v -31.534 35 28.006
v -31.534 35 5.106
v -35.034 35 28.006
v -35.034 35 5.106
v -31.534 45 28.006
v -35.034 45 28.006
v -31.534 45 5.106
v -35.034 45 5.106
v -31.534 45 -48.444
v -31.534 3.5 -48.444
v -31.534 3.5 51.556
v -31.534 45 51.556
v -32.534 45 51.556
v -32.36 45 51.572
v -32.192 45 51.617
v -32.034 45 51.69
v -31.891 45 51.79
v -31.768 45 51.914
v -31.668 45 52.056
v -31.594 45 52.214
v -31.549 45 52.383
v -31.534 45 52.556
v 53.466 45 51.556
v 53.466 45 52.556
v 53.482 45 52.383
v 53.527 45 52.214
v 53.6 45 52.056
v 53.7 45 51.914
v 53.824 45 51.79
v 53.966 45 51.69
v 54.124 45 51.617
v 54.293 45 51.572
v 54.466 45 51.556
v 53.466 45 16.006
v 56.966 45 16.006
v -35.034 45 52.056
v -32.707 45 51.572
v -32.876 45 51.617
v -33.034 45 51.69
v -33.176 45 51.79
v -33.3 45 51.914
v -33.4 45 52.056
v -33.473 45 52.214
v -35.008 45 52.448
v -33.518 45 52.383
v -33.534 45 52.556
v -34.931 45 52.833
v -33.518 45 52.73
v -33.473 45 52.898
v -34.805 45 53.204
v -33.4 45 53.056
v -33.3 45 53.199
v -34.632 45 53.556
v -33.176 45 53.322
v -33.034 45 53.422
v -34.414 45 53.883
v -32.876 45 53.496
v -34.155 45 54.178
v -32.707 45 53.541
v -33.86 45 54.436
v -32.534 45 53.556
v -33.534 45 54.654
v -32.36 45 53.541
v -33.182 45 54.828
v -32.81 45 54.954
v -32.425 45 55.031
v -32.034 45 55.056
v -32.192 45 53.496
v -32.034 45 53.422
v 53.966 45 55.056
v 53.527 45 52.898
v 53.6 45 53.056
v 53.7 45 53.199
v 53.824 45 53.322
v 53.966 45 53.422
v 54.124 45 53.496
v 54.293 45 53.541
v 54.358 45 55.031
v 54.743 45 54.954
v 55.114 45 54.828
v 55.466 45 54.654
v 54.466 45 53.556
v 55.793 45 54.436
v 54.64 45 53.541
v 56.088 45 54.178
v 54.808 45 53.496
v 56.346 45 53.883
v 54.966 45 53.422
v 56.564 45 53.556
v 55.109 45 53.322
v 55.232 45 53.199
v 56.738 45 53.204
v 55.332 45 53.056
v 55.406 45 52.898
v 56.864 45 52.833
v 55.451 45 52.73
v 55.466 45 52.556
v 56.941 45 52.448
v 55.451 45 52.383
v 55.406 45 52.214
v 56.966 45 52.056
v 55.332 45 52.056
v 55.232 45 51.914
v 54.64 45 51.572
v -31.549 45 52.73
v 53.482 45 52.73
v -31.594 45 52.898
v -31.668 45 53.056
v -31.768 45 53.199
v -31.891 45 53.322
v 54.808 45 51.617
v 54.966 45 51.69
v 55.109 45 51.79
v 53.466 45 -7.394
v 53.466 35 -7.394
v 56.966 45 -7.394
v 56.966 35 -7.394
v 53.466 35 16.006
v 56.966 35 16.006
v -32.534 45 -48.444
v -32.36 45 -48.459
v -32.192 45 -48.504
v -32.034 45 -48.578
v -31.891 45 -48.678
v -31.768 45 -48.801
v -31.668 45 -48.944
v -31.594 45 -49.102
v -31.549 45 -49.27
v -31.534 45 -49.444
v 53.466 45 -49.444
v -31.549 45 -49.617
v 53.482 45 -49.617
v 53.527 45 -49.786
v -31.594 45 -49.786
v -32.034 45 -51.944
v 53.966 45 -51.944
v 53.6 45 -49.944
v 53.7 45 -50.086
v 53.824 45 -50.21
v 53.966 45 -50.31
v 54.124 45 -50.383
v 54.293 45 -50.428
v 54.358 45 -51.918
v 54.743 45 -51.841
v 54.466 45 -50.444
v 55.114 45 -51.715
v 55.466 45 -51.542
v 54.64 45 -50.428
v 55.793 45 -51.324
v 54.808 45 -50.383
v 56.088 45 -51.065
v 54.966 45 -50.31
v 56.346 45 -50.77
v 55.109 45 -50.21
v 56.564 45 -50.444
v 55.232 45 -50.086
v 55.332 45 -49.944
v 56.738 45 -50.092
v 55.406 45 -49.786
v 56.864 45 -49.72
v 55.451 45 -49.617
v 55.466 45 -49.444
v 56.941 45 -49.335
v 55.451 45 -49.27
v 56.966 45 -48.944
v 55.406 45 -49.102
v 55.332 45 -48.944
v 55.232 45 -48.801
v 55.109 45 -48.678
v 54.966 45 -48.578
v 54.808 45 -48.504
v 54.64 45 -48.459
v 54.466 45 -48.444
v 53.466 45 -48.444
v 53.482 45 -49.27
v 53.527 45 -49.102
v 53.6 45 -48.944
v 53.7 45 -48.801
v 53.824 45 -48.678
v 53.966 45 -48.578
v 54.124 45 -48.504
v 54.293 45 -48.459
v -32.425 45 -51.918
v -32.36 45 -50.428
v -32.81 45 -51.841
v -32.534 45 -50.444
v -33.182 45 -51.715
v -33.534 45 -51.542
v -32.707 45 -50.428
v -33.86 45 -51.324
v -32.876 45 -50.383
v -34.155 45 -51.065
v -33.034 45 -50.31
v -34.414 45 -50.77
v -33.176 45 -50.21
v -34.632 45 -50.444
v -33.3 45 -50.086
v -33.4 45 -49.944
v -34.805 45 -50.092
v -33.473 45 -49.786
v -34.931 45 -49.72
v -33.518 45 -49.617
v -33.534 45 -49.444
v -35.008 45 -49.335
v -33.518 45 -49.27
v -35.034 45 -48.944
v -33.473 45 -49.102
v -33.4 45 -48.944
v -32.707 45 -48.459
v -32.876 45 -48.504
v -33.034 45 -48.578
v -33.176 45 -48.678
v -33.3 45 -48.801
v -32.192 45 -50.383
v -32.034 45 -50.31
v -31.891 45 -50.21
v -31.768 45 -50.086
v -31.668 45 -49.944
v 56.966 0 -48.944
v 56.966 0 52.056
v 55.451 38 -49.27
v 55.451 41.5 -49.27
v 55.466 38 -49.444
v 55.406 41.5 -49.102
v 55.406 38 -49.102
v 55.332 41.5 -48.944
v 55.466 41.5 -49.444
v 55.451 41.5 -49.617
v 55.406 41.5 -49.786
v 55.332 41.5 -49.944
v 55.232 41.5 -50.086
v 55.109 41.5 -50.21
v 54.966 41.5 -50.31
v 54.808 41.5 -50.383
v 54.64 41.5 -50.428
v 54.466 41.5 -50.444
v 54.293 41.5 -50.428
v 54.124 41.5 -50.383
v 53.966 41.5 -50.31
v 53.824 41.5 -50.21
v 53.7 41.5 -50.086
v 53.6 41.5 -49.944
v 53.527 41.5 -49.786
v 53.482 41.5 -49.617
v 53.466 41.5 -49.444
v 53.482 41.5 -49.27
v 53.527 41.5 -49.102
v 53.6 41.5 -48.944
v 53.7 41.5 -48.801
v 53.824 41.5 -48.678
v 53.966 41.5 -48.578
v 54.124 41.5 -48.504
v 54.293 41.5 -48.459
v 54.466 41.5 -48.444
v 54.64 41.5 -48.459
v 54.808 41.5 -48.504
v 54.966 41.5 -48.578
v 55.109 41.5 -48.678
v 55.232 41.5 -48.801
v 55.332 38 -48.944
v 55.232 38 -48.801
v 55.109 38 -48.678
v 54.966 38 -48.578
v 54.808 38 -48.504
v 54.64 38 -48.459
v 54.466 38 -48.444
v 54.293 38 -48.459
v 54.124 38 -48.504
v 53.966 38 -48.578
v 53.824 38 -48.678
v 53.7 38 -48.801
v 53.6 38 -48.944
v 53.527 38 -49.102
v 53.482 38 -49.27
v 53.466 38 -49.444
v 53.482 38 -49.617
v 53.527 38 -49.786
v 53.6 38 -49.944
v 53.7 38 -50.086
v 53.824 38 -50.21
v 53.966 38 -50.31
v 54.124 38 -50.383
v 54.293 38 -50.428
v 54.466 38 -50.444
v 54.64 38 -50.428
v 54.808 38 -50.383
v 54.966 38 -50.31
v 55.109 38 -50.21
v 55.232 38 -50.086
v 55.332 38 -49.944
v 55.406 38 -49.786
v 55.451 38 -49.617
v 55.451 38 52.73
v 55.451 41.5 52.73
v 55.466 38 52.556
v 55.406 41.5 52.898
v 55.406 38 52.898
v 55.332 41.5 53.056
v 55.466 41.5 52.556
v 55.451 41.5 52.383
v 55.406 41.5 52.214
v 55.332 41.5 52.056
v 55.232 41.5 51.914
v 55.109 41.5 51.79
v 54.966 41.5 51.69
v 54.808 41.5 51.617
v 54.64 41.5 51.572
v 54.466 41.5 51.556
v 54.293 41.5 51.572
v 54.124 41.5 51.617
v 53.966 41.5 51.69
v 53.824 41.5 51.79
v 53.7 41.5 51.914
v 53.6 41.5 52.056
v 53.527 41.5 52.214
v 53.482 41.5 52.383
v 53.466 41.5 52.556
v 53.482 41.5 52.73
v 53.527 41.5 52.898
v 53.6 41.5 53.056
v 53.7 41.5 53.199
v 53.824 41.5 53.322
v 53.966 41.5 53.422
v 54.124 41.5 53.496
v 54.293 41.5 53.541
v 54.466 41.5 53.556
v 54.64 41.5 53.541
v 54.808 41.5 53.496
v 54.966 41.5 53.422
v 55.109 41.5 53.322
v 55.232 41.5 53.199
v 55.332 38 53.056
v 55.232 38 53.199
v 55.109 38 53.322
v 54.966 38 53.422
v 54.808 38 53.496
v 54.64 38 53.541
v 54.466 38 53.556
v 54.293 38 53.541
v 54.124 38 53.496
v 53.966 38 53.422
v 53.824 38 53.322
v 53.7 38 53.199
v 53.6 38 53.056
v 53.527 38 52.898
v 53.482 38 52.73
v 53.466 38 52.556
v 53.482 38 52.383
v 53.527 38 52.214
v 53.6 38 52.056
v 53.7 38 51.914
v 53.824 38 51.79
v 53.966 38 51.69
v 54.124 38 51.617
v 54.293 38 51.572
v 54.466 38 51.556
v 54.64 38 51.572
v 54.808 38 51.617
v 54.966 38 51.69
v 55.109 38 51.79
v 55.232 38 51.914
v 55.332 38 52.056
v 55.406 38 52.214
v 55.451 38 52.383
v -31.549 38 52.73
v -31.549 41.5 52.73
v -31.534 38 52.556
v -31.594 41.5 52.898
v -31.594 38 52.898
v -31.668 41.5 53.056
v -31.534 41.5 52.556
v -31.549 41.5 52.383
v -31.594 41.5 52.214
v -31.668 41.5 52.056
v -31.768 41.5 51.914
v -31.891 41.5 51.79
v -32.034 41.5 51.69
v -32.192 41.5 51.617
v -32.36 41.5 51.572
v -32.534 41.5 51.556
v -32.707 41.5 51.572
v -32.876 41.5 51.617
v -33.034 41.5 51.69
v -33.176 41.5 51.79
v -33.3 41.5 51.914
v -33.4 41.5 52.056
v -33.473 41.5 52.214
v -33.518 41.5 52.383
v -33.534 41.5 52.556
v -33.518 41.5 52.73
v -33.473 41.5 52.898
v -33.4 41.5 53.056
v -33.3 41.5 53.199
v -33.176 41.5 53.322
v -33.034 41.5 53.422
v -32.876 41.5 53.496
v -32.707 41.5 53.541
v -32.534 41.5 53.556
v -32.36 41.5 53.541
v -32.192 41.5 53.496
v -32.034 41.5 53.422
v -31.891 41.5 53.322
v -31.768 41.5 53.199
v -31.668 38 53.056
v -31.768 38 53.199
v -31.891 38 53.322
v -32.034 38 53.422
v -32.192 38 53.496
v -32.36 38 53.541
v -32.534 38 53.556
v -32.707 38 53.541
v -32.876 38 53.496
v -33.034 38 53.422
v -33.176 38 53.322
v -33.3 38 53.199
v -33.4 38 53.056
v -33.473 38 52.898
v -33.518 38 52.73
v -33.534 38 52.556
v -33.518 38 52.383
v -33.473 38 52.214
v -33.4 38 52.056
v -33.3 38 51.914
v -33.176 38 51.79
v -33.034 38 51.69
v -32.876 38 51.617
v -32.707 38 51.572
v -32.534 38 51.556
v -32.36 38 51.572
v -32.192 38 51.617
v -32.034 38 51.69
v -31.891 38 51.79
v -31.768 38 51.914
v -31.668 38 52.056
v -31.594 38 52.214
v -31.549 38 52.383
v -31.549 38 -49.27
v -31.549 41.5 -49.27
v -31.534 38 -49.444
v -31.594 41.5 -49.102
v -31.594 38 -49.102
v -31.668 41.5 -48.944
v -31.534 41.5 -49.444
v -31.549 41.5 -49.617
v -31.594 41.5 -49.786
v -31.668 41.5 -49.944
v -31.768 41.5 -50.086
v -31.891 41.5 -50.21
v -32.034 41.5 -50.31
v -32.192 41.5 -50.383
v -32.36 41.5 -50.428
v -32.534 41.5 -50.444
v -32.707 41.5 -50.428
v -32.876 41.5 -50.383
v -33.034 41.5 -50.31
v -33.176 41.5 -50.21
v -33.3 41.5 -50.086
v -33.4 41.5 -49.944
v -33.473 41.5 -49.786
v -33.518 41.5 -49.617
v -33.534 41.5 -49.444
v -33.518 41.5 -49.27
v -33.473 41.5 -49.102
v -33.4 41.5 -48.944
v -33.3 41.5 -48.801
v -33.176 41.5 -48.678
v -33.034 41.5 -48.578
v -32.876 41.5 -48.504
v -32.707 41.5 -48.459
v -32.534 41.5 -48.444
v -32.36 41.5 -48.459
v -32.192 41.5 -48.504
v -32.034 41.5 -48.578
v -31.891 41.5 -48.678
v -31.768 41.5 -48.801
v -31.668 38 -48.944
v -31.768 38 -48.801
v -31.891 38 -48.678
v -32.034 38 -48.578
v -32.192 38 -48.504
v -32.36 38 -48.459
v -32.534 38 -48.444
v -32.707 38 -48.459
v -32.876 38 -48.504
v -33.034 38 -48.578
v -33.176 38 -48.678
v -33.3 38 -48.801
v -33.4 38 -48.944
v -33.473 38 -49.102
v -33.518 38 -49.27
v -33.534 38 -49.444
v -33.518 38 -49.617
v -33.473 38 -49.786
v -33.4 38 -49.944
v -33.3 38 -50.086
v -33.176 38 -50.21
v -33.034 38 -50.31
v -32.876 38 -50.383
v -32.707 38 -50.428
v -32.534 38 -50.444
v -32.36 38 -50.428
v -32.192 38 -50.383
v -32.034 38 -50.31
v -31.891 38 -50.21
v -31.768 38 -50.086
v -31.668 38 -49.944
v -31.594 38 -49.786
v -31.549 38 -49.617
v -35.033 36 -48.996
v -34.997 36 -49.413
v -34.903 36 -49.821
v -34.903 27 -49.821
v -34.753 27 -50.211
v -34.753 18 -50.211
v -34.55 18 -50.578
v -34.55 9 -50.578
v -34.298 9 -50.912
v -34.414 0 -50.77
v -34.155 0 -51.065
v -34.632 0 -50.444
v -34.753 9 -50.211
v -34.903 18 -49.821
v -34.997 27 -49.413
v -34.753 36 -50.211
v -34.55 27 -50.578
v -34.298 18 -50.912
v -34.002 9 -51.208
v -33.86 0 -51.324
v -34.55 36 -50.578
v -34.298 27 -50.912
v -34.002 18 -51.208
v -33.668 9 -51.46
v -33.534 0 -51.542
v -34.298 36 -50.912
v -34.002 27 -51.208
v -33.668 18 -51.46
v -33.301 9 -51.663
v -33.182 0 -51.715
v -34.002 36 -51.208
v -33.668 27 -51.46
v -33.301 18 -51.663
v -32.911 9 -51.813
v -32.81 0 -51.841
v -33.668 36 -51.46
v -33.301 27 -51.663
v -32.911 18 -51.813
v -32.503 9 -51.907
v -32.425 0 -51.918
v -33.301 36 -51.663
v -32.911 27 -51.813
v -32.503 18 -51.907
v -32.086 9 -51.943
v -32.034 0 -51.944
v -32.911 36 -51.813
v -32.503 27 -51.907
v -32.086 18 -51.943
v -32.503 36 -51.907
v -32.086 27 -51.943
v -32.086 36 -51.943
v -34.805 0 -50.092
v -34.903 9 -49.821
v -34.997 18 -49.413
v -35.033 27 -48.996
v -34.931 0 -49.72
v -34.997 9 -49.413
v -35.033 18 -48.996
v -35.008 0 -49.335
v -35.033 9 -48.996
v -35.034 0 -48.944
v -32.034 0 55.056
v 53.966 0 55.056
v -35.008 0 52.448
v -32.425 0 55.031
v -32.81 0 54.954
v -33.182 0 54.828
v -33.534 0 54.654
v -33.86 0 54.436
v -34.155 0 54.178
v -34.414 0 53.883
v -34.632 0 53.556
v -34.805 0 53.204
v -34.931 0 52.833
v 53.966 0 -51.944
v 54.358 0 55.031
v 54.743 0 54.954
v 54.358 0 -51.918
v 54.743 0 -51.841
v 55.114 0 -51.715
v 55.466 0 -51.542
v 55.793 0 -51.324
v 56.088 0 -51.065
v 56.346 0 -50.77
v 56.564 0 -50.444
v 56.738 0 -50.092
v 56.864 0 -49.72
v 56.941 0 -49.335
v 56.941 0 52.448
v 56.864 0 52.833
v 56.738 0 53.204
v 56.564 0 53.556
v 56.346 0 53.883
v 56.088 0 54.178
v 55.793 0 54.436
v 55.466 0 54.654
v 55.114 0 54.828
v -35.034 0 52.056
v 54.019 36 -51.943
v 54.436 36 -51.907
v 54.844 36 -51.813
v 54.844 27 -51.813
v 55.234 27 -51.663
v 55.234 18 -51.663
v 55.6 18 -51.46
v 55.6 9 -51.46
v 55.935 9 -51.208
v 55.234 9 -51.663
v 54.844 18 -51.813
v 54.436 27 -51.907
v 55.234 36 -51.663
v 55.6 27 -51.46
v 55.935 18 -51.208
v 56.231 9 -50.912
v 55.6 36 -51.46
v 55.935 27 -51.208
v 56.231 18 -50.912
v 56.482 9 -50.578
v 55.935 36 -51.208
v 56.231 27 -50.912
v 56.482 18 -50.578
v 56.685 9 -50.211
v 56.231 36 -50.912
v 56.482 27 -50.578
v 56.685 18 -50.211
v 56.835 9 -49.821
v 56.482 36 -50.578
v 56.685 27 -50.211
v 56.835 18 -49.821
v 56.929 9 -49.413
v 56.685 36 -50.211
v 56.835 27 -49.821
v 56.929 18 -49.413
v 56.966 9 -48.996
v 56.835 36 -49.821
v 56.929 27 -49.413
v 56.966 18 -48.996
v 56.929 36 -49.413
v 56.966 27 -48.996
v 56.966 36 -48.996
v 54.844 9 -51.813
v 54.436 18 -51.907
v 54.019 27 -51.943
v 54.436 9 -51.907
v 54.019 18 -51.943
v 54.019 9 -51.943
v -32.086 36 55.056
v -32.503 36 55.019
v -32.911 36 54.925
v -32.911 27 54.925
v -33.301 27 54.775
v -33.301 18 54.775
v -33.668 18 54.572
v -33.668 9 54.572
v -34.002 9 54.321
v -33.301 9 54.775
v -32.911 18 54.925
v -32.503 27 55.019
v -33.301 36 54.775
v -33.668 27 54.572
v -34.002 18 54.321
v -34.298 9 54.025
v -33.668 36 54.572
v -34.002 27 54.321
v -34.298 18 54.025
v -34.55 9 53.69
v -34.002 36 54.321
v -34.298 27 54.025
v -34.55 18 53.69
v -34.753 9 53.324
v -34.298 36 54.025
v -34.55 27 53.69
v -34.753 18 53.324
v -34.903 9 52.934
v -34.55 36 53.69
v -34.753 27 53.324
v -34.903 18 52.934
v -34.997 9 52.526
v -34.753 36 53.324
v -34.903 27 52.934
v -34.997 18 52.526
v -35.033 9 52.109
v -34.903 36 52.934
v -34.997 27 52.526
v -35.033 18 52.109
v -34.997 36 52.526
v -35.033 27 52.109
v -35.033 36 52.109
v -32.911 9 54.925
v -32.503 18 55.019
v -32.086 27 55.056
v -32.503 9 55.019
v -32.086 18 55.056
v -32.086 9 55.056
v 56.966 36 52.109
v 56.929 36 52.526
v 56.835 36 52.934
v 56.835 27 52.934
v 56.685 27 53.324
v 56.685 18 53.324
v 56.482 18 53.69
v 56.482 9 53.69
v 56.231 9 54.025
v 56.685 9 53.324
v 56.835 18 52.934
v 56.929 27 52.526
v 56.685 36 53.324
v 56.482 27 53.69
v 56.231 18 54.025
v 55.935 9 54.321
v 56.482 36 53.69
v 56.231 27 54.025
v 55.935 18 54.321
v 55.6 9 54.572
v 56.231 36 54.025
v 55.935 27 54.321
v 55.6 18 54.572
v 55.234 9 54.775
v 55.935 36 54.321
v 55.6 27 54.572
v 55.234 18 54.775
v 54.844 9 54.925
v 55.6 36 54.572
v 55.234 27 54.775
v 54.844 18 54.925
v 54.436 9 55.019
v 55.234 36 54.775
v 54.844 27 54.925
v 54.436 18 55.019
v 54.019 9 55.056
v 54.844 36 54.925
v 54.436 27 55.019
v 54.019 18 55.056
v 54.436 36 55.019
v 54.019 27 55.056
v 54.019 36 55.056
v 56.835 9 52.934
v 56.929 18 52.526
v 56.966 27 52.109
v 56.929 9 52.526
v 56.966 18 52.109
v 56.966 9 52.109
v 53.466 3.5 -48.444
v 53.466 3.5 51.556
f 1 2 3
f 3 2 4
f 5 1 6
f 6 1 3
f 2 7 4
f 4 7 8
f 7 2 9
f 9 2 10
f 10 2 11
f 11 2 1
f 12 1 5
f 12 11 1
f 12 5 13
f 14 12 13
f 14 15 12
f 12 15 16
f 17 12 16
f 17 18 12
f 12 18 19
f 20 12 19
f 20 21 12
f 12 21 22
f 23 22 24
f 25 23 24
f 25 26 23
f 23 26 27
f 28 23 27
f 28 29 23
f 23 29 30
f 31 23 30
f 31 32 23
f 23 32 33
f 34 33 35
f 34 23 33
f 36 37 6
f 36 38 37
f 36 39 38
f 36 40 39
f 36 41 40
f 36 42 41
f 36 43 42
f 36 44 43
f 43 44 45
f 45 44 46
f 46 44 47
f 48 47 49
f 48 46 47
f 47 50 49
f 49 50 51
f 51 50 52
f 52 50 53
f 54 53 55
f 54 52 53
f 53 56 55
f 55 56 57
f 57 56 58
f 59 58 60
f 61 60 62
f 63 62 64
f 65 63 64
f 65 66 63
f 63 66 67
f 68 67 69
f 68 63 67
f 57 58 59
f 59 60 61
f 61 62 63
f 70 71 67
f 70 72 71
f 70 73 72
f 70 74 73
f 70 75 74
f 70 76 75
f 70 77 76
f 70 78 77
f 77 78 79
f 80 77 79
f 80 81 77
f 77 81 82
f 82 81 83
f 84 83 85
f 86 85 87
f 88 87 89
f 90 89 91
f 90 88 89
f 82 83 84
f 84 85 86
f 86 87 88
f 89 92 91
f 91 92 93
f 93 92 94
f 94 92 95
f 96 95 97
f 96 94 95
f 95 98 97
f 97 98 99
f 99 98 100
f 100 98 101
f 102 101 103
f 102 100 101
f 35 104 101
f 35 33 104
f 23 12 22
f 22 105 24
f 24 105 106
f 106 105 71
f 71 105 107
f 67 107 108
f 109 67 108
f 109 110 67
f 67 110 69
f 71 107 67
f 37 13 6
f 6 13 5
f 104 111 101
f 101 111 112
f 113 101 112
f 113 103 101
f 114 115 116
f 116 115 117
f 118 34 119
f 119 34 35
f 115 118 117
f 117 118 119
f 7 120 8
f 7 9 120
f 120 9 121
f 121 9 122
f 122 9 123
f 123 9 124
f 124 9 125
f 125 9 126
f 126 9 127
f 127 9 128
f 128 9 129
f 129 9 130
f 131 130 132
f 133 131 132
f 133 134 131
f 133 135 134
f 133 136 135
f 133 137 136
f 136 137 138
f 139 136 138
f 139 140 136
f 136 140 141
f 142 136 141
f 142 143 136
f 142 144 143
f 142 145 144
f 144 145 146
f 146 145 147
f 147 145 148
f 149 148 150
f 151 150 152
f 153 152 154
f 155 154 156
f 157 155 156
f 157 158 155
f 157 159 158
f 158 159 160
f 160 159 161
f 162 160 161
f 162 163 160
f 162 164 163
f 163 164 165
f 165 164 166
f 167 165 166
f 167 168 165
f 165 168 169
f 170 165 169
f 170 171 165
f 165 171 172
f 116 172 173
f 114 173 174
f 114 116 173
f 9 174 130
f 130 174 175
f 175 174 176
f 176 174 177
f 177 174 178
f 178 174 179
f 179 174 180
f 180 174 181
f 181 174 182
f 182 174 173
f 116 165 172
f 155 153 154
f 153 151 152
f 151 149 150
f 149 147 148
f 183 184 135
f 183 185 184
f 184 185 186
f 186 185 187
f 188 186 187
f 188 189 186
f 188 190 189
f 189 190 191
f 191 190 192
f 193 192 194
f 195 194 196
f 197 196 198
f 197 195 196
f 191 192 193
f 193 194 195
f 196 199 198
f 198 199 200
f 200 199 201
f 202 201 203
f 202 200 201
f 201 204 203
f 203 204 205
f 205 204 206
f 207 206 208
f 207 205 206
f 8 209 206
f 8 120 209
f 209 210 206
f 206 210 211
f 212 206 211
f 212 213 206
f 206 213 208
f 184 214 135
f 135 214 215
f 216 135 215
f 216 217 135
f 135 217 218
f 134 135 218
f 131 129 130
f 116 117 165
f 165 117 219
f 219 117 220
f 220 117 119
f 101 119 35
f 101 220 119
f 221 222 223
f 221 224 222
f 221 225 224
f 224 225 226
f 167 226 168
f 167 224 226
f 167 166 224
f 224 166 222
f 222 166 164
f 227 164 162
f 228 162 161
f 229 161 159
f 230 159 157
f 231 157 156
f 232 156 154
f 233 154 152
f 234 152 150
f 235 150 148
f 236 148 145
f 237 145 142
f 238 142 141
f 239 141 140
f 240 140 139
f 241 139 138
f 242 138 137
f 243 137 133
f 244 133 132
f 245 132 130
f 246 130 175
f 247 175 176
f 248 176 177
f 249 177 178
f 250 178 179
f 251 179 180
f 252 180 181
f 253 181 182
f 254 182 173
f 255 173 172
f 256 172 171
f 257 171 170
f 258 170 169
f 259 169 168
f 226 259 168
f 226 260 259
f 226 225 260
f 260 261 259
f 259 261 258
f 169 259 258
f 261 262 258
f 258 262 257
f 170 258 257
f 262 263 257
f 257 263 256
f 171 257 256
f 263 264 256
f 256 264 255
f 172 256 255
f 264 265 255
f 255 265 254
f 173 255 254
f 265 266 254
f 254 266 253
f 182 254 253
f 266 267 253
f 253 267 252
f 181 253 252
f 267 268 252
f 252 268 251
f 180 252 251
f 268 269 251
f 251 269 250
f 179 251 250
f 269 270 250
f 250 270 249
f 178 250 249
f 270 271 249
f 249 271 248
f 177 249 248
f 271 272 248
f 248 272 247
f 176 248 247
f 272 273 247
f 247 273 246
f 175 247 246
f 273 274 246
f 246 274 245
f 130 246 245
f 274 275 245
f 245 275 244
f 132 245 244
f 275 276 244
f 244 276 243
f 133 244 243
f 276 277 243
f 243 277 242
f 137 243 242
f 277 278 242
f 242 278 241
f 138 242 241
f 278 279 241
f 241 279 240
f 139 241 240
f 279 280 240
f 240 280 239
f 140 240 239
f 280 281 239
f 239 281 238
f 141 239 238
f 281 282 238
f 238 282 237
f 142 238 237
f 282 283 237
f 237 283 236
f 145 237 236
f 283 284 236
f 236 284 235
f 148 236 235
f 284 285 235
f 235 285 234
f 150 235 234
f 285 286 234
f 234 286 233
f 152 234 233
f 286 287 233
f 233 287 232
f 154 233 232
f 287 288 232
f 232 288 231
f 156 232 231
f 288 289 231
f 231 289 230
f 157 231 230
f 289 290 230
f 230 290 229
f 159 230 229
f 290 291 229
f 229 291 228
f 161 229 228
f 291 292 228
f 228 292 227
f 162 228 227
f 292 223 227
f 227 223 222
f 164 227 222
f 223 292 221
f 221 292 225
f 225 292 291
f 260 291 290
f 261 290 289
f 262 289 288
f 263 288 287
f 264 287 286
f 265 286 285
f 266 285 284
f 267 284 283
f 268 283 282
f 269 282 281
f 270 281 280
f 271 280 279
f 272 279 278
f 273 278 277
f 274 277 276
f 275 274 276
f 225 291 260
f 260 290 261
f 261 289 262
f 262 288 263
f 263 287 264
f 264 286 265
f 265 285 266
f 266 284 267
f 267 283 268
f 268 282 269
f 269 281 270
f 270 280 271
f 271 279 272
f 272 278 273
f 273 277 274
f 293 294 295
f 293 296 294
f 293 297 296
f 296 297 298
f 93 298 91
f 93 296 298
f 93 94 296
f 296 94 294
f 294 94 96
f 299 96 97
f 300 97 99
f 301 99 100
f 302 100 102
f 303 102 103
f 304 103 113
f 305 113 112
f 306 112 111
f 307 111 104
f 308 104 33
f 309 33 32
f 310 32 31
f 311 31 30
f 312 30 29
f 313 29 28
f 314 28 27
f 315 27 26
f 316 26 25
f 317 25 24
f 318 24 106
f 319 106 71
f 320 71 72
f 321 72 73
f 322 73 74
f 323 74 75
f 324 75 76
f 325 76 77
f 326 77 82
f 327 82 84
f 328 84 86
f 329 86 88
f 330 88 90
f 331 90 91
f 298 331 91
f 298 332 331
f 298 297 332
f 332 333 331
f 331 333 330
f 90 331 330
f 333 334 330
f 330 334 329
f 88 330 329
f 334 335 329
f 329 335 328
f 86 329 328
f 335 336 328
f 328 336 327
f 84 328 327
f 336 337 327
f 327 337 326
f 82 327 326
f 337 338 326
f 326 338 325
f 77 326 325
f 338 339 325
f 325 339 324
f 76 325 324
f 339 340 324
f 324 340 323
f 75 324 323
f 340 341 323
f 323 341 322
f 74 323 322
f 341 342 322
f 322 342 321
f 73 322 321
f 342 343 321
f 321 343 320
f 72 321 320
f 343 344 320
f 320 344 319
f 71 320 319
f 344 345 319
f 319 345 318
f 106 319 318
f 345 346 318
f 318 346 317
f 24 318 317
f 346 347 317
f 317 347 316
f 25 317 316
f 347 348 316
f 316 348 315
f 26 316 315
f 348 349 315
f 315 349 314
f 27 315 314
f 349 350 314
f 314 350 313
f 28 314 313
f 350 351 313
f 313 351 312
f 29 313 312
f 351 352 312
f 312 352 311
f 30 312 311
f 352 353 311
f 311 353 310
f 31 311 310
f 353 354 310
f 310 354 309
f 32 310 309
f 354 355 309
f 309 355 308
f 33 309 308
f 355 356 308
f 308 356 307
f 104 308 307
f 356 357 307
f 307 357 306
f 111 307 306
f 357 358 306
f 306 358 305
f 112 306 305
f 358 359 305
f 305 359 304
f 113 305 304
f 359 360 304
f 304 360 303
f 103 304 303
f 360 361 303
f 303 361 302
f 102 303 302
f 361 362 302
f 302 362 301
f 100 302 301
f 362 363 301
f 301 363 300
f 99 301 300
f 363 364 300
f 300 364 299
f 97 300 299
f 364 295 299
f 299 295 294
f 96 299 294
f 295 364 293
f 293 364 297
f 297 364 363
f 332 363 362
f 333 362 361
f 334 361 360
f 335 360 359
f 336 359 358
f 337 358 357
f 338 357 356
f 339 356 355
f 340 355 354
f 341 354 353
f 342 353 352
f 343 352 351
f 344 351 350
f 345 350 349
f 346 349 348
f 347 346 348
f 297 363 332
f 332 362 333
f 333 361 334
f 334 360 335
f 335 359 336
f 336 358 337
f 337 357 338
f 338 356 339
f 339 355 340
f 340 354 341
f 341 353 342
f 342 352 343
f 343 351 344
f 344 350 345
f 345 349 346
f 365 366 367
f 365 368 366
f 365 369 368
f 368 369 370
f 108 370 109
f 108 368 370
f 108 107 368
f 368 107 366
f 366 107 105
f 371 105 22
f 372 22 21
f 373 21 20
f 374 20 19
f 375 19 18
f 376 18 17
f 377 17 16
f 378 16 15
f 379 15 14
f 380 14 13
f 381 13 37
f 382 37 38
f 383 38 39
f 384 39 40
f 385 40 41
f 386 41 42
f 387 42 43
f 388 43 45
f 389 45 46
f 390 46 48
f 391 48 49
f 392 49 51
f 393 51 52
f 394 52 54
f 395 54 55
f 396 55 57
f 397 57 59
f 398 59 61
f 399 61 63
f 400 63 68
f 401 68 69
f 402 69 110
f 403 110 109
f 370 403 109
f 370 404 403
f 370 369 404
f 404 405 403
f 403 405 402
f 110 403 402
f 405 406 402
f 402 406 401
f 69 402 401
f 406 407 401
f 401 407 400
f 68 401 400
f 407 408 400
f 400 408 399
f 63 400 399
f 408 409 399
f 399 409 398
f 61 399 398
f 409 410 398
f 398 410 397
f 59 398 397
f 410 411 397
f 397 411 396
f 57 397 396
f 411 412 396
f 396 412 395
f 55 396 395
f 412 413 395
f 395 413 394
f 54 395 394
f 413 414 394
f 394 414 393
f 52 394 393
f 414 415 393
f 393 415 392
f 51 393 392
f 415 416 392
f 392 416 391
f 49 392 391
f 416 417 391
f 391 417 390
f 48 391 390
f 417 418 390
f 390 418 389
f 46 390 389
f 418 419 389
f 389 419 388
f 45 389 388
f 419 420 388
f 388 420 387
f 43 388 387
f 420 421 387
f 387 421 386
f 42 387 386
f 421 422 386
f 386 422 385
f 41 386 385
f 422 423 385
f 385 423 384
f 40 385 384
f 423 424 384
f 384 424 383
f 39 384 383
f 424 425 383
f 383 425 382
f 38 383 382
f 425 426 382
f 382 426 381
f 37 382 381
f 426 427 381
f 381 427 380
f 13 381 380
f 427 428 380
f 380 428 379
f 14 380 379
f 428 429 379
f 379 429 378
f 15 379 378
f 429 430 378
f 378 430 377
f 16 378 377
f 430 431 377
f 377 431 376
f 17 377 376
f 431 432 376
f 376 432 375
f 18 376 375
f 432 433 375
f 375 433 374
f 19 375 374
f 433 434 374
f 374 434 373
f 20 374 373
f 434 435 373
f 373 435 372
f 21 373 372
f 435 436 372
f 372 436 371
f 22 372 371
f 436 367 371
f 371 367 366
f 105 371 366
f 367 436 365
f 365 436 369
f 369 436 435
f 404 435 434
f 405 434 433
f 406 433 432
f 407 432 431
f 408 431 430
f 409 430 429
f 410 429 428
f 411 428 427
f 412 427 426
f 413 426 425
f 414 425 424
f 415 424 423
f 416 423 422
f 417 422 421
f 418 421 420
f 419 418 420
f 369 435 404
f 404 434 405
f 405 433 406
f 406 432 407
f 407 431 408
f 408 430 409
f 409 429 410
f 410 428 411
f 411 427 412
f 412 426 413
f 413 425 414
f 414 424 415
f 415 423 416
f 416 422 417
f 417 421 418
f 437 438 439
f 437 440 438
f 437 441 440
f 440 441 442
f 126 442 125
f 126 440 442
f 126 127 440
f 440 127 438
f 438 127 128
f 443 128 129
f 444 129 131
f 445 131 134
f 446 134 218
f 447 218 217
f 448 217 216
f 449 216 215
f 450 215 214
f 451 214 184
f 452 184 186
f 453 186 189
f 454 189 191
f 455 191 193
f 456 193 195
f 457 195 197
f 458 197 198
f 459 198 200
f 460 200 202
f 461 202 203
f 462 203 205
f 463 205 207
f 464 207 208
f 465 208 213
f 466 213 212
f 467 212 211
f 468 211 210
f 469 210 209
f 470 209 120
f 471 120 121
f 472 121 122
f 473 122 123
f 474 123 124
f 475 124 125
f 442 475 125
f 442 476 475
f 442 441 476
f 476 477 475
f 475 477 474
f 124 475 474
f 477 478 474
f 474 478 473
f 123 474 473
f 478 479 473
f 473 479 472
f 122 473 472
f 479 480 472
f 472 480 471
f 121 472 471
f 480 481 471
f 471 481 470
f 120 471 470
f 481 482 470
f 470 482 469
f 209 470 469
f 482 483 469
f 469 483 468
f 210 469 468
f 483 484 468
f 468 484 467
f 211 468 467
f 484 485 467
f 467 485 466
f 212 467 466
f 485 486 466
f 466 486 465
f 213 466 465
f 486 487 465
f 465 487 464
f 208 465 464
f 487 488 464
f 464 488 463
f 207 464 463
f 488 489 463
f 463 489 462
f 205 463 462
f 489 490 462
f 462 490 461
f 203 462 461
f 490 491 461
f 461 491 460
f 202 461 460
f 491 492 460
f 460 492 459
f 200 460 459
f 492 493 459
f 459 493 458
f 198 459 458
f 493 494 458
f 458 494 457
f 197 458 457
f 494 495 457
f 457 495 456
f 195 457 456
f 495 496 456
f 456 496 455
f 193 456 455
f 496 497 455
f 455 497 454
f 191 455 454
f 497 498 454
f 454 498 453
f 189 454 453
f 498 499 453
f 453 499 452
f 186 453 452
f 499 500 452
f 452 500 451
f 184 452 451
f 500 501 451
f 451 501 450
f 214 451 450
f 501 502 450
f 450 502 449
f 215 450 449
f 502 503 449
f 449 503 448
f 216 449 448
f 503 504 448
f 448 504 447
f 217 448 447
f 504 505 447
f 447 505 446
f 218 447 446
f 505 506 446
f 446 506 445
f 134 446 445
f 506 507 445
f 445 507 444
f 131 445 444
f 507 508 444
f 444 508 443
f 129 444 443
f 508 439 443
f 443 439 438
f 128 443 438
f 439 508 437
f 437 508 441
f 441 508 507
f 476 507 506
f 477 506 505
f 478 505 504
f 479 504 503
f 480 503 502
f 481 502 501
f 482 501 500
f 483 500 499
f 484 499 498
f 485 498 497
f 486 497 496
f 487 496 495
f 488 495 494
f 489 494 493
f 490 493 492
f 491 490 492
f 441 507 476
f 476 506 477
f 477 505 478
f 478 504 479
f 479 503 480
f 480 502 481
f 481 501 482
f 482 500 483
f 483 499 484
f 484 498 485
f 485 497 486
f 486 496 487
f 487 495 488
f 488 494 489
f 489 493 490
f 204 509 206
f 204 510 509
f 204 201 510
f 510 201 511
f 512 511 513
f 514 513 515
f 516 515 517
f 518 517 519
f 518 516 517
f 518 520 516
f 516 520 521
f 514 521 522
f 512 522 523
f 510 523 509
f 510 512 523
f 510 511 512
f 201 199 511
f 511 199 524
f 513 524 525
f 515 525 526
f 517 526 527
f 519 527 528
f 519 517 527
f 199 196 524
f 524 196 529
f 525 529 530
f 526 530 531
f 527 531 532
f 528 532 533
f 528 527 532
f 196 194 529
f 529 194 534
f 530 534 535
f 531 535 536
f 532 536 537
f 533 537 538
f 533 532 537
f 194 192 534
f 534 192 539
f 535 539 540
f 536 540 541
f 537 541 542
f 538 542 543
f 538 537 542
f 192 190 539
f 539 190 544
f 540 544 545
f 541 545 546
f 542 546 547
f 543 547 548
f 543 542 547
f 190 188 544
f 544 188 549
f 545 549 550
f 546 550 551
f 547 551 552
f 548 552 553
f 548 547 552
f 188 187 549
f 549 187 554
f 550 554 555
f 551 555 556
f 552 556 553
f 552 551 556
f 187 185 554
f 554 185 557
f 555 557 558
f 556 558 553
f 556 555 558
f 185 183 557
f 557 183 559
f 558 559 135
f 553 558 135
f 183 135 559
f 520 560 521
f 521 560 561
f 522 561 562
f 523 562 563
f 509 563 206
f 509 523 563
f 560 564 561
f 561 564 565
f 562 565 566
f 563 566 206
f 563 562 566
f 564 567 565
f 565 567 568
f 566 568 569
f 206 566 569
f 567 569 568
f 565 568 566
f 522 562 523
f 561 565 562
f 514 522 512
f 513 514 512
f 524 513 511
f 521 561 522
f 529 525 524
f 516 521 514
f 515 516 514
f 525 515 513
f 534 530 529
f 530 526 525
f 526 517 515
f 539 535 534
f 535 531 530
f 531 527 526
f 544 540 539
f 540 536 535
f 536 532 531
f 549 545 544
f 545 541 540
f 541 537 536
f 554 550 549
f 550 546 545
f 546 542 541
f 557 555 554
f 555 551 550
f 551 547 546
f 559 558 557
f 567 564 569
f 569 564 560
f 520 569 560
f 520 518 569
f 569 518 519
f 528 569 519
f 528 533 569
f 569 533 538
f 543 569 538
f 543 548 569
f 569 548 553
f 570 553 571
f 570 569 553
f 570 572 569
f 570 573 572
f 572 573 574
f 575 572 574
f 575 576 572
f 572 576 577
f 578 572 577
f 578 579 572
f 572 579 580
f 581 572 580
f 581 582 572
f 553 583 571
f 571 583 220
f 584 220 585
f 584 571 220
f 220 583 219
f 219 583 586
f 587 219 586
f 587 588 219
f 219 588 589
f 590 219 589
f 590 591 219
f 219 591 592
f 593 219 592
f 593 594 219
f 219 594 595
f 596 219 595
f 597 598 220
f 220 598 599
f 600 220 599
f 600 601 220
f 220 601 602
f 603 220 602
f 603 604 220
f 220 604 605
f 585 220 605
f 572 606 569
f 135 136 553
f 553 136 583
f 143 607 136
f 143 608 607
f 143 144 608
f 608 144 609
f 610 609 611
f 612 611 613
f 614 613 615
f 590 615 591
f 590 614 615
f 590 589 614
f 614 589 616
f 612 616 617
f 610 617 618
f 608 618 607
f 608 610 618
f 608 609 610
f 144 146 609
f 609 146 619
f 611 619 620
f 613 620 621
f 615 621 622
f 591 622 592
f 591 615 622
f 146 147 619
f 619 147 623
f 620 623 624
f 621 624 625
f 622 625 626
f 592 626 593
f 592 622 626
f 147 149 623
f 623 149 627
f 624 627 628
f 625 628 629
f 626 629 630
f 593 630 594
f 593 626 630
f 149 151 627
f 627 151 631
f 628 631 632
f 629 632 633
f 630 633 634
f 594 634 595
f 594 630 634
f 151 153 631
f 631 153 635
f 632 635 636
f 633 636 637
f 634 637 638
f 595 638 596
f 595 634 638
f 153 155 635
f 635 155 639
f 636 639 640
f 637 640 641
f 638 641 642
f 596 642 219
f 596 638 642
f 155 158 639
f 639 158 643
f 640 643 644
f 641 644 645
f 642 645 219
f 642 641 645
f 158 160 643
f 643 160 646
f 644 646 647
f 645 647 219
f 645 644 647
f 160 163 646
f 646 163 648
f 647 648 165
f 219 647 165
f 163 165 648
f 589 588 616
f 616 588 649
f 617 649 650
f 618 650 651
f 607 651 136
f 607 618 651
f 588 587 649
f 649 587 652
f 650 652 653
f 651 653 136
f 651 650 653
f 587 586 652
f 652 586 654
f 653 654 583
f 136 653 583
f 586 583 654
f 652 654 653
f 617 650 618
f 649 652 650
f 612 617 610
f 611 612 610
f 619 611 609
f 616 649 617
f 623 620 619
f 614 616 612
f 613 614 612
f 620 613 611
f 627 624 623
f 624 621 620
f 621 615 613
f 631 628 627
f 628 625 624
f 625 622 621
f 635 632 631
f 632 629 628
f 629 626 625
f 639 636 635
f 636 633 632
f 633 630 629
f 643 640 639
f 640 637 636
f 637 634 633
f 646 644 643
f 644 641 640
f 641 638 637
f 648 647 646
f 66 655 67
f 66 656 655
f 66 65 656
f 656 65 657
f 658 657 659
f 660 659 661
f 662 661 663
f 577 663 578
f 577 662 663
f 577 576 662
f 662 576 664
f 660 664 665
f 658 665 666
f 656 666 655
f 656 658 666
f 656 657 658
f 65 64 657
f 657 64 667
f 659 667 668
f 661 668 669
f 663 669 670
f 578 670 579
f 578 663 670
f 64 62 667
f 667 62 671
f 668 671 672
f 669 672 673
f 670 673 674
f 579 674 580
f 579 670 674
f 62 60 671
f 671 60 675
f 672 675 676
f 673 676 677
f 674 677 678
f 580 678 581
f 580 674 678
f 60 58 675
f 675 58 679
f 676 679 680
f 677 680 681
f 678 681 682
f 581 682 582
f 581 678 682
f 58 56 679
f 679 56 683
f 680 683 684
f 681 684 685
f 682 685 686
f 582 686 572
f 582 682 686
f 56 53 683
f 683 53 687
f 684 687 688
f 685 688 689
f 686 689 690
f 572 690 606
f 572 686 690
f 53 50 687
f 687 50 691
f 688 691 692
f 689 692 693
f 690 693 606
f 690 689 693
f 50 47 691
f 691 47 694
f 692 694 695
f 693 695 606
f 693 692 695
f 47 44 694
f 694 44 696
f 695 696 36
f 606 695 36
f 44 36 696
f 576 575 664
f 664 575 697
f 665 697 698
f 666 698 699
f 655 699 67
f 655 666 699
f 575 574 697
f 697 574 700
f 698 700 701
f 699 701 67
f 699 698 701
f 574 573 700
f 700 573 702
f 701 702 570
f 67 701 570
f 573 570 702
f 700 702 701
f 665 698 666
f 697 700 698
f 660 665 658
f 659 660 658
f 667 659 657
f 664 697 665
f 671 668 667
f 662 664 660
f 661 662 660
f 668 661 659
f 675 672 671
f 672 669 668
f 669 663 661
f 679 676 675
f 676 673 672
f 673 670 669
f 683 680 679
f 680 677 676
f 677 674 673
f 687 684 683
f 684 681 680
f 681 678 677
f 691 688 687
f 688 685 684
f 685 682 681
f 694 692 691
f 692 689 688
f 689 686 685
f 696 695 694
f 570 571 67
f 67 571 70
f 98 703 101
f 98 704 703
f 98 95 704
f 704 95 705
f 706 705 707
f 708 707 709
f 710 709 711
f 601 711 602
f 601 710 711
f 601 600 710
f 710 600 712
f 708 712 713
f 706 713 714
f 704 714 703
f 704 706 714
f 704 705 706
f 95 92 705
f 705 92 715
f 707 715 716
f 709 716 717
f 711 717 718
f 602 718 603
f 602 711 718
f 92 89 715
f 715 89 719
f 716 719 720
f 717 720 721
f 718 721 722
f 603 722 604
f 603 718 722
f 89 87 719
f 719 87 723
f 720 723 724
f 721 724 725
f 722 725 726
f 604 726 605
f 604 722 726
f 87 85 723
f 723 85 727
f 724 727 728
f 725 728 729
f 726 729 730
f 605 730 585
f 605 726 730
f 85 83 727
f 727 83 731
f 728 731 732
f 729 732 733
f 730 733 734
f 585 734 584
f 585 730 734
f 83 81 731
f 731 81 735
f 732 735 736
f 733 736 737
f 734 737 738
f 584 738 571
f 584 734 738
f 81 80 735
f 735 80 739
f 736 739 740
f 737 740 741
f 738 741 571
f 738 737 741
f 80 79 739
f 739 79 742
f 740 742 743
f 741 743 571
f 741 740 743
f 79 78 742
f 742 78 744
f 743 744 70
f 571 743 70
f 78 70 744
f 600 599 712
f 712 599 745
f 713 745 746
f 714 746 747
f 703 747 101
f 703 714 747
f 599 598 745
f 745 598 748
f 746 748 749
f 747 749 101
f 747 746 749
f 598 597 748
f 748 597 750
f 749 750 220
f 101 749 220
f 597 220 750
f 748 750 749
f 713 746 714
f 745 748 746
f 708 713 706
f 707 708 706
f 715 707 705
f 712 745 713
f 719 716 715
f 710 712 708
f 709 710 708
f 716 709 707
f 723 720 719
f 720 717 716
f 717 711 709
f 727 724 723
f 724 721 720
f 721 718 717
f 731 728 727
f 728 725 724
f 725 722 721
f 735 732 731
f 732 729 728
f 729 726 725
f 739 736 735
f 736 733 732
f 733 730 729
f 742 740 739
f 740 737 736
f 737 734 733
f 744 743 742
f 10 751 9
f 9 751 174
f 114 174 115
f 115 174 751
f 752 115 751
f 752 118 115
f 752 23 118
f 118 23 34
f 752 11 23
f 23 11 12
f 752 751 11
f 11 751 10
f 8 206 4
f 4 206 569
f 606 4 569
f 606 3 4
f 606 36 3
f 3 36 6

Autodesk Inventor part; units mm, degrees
ref_plane "YZ Plane" through (0, 0, 0) normal (1, 0, 0) x (0, 1, 0)
ref_plane "XZ Plane" through (0, 0, 0) normal (0, 1, 0) x (-1, 0, 0)
ref_plane "XY Plane" through (0, 0, 0) normal (0, 0, 1) x (1, 0, 0)
sketch "Sketch2" plane through (0, 0, 0) normal (0, 1, 0) x (-1, 0, 0)
  line L0 (35.0336, 55.0564) -> (-56.9664, 55.0564)
  line L1 (-56.9664, 55.0564) -> (-56.9664, -51.9436)
  line L2 (-56.9664, -51.9436) -> (35.0336, -51.9436)
  line L3 (35.0336, -51.9436) -> (35.0336, 55.0564)
  point P0 (0, 0)
  dimension "d28" = 107
  dimension "d29" = 92
extrude "Extrusion2" add sketch "Sketch2" along normal blind 45
shell "Shell2" thickness 3.5 removed faces 1 at (-4.367, 45, -16.277)
fillet "Fillet1" radius 3 4 edges at (56.9664, 22.5, 55.0564) (-35.0336, 22.5, 55.0564) (56.9664, 22.5, -51.9436) (-35.0336, 22.5, -51.9436)
sketch "Sketch3" plane through (0, 45, 0) normal (0, 1, 0) x (1, 0, 0)
  circle A0 centre (54.4664, -52.5564) radius 1
  line L0 (-32.0336, -55.0564) -> (53.9664, -55.0564) projected
  line L1 (56.9664, -52.0564) -> (56.9664, 48.9436) projected
  line L2 (10.9664, -40.0013) -> (10.9664, -71.8309)
  line L3 (-21.6043, -1.5564) -> (-51.5358, -1.5564)
  circle A1 centre (-32.5336, -52.5564) radius 1
  circle A2 centre (54.4664, 49.4436) radius 1
  circle A3 centre (-32.5336, 49.4436) radius 1
  point P0 (0, 0)
  dimension "d34" = 2
  dimension "d35" = 2.5
  dimension "d36" = 2.5
  dimension "d37" = 46
  dimension "d38" = 53.5
extrude "Extrusion3" cut sketch "Sketch3" against normal blind 7
sketch "Sketch9" plane through (56.9664, 0, 52.0564) normal (1, 0, 0) x (0, 0, -1)
  line L0 (59.45, 45) -> (36.05, 45)
  line L1 (36.05, 45) -> (36.05, 35)
  line L2 (36.05, 35) -> (59.45, 35)
  line L3 (59.45, 35) -> (59.45, 45)
  line L4 (-3, 45) -> (-3, 0) projected
  line L5 (104, 0) -> (104, 45) projected
  line L6 (0, 45) -> (101, 45) projected
  point P0 (52.0564, 0)
  point P1 (-3, 2)
  point P2 (107, 2)
  dimension "d102" = 10
  dimension "d103" = 39.05
  dimension "d104" = 44.55
  dimension "d105" = 0
extrude "Extrusion5" cut sketch "Sketch9" against normal blind 8
sketch "Sketch10" plane through (-35.0336, 0, -48.9436) normal (-1, 0, 0) x (0, 0, 1)
  line L0 (54.05, 35) -> (76.95, 35)
  line L1 (76.95, 35) -> (76.95, 45)
  line L2 (76.95, 45) -> (54.05, 45)
  line L3 (54.05, 45) -> (54.05, 35)
  line L4 (104, 0) -> (104, 45) projected
  line L5 (0, 45) -> (101, 45) projected
  line L6 (-3, 45) -> (-3, 0) projected
  point P0 (48.9436, 0)
  point P1 (107, 2)
  point P2 (-3, 2)
  dimension "d108" = 27.05
  dimension "d109" = 0
  dimension "d110" = 57.05
  dimension "d111" = 10
extrude "Extrusion6" cut sketch "Sketch10" against normal blind 8
properties part number "MotorDriverModel"
